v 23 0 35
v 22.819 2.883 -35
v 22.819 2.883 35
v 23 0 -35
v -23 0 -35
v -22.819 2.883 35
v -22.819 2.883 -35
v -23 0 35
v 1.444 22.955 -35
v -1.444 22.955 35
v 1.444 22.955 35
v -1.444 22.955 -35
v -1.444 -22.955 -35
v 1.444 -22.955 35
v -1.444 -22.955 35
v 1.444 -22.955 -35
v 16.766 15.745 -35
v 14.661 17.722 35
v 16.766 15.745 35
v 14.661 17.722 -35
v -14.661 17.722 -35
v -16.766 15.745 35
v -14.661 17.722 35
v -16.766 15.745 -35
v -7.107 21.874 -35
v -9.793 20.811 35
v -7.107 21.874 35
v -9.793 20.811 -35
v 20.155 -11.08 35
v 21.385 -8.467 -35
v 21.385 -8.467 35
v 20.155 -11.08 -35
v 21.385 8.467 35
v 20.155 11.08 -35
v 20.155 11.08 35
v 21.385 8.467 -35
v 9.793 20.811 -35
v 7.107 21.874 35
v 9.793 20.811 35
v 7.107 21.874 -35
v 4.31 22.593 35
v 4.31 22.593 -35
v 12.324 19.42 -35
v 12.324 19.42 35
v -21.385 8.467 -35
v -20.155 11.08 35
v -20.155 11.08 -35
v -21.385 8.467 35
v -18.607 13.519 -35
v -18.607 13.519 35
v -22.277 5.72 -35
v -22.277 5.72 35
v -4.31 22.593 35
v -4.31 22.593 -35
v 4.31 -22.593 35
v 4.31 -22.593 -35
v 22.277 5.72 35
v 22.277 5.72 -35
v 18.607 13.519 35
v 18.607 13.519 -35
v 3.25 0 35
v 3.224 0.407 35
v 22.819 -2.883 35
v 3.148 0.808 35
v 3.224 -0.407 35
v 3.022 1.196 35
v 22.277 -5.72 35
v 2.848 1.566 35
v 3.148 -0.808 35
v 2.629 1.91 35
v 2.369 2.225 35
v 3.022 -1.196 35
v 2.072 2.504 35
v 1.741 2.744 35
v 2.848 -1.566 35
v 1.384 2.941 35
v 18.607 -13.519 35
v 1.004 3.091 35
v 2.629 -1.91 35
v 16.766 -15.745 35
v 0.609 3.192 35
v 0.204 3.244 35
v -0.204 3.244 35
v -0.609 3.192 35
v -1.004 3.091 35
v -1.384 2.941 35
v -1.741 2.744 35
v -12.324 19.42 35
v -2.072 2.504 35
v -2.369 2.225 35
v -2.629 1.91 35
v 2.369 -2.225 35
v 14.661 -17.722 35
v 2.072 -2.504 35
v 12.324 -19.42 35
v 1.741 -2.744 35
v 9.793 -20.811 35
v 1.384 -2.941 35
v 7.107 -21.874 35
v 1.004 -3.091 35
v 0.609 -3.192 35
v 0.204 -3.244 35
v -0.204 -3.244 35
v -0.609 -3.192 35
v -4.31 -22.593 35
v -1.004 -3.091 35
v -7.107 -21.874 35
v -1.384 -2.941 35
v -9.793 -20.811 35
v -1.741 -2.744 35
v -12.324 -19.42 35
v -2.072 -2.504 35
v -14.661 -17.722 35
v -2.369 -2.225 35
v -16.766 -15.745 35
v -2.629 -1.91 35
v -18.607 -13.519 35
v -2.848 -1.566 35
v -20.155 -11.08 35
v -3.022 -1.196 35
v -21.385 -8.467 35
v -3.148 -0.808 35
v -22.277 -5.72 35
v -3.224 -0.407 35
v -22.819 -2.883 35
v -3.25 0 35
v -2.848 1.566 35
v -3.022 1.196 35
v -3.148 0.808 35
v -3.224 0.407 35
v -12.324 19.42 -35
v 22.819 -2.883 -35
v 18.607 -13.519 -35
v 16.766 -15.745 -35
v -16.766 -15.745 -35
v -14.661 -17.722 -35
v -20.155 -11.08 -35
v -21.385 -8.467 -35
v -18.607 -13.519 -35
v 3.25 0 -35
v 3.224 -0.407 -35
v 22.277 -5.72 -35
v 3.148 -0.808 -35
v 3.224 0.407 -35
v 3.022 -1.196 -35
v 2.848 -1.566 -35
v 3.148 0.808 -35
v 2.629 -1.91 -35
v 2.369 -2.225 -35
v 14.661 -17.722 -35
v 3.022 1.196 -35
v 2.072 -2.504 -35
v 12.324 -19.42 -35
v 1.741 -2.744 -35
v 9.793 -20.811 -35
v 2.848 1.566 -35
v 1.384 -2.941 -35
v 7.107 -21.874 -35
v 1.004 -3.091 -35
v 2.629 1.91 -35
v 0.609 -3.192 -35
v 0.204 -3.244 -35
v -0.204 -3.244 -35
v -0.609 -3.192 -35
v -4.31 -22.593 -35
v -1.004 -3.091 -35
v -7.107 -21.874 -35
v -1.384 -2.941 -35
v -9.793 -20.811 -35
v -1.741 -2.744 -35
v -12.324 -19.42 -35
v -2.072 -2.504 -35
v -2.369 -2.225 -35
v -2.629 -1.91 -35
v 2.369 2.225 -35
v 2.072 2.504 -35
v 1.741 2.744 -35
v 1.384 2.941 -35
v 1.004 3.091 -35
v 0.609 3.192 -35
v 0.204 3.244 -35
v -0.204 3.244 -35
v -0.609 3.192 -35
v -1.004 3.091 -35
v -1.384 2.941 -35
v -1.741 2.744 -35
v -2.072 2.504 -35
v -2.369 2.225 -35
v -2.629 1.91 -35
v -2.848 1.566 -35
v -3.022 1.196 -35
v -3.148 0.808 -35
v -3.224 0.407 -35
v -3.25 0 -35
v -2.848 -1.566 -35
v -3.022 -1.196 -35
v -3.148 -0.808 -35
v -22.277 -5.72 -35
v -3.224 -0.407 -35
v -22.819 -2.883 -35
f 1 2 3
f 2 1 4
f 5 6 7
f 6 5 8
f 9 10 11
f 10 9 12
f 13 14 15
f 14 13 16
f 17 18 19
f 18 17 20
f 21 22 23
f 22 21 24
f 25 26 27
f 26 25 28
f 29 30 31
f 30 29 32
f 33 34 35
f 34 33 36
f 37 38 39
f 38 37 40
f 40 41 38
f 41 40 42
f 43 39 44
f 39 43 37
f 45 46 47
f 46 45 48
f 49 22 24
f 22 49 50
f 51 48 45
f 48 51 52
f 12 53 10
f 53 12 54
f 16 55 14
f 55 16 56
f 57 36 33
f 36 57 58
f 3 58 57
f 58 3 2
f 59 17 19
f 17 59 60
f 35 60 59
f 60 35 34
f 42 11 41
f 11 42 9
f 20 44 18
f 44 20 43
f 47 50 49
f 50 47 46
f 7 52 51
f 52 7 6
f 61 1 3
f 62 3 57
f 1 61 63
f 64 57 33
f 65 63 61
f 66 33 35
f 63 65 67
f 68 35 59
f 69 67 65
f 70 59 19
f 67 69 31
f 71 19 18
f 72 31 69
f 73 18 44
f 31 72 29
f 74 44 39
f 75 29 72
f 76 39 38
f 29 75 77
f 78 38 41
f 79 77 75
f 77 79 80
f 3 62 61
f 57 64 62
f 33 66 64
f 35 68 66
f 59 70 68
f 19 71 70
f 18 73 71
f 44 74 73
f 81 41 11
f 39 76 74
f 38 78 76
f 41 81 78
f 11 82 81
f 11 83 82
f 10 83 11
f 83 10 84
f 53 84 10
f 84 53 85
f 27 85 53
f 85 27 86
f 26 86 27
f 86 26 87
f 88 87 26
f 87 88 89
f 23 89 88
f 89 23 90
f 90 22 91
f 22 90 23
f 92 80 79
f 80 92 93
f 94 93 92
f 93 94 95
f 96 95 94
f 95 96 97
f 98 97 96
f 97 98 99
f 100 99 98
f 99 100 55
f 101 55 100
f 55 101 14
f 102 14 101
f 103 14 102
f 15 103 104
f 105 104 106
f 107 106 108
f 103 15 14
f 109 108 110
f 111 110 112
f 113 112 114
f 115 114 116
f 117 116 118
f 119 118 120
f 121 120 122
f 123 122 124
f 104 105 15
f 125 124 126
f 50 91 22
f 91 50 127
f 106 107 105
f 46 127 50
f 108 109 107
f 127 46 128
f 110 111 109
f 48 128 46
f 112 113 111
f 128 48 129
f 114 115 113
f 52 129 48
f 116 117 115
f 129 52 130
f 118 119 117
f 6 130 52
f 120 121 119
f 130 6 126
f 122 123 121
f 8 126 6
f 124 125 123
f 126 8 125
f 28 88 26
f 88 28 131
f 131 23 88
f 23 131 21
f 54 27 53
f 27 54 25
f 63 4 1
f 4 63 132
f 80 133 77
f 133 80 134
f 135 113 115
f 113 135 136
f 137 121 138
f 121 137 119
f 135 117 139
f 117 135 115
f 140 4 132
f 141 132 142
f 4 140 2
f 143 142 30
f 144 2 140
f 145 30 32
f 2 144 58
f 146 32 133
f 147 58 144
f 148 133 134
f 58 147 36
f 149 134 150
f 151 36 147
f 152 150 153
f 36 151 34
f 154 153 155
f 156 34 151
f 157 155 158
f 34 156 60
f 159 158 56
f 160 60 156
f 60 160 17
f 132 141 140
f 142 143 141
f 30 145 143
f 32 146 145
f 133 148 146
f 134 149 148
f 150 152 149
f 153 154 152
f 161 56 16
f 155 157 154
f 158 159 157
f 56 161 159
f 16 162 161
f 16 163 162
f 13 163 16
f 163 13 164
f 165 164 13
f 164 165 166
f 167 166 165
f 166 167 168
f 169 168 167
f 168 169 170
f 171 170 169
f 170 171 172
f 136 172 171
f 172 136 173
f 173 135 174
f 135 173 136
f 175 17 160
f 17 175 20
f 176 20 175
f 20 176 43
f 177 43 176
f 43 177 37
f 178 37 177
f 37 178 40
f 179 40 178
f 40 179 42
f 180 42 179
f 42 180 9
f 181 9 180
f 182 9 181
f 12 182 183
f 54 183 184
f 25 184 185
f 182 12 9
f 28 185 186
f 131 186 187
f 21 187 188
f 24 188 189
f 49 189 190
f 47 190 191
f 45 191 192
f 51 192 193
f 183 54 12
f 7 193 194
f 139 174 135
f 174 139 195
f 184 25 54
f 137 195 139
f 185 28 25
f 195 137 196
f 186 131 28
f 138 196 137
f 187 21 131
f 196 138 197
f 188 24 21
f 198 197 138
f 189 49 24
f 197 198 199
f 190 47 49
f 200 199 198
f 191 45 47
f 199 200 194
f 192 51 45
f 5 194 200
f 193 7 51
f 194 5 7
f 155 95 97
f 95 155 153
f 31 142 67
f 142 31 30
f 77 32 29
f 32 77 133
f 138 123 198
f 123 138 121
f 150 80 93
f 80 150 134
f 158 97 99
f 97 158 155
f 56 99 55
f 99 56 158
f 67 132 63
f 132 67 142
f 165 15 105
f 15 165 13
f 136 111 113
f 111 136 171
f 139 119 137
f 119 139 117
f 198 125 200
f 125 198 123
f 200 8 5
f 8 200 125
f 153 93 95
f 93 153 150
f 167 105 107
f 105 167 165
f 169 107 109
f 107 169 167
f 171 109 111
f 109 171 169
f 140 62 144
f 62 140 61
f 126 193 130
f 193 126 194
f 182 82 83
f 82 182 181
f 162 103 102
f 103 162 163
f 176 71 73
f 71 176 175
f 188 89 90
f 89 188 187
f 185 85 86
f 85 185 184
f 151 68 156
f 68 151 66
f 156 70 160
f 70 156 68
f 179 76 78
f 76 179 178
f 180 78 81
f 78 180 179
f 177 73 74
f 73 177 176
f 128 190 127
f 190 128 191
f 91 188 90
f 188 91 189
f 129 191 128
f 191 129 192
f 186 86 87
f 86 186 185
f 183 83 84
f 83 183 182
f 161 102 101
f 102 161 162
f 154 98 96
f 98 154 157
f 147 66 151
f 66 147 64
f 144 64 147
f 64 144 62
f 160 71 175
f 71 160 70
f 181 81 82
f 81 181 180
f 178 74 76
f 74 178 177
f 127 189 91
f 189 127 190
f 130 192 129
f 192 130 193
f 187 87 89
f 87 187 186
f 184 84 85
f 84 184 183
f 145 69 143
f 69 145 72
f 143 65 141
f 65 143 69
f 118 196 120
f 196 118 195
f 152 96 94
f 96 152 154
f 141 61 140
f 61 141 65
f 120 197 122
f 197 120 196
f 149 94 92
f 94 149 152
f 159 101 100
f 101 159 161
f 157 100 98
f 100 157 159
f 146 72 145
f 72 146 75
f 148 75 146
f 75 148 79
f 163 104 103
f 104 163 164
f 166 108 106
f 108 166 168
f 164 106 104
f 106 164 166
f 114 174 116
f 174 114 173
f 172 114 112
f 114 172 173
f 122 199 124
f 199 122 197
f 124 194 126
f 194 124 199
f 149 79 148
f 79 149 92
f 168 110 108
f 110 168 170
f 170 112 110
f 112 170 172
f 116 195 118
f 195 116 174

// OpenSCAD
$fn = 50;


difference() {
	union() {
		translate(v = [0, 0, -35.0000000000]) {
			cylinder(h = 70, r = 23.0000000000);
		}
	}
	union() {
		translate(v = [0, 0, -100.0000000000]) {
			cylinder(h = 200, r = 3.2500000000);
		}
	}
}
